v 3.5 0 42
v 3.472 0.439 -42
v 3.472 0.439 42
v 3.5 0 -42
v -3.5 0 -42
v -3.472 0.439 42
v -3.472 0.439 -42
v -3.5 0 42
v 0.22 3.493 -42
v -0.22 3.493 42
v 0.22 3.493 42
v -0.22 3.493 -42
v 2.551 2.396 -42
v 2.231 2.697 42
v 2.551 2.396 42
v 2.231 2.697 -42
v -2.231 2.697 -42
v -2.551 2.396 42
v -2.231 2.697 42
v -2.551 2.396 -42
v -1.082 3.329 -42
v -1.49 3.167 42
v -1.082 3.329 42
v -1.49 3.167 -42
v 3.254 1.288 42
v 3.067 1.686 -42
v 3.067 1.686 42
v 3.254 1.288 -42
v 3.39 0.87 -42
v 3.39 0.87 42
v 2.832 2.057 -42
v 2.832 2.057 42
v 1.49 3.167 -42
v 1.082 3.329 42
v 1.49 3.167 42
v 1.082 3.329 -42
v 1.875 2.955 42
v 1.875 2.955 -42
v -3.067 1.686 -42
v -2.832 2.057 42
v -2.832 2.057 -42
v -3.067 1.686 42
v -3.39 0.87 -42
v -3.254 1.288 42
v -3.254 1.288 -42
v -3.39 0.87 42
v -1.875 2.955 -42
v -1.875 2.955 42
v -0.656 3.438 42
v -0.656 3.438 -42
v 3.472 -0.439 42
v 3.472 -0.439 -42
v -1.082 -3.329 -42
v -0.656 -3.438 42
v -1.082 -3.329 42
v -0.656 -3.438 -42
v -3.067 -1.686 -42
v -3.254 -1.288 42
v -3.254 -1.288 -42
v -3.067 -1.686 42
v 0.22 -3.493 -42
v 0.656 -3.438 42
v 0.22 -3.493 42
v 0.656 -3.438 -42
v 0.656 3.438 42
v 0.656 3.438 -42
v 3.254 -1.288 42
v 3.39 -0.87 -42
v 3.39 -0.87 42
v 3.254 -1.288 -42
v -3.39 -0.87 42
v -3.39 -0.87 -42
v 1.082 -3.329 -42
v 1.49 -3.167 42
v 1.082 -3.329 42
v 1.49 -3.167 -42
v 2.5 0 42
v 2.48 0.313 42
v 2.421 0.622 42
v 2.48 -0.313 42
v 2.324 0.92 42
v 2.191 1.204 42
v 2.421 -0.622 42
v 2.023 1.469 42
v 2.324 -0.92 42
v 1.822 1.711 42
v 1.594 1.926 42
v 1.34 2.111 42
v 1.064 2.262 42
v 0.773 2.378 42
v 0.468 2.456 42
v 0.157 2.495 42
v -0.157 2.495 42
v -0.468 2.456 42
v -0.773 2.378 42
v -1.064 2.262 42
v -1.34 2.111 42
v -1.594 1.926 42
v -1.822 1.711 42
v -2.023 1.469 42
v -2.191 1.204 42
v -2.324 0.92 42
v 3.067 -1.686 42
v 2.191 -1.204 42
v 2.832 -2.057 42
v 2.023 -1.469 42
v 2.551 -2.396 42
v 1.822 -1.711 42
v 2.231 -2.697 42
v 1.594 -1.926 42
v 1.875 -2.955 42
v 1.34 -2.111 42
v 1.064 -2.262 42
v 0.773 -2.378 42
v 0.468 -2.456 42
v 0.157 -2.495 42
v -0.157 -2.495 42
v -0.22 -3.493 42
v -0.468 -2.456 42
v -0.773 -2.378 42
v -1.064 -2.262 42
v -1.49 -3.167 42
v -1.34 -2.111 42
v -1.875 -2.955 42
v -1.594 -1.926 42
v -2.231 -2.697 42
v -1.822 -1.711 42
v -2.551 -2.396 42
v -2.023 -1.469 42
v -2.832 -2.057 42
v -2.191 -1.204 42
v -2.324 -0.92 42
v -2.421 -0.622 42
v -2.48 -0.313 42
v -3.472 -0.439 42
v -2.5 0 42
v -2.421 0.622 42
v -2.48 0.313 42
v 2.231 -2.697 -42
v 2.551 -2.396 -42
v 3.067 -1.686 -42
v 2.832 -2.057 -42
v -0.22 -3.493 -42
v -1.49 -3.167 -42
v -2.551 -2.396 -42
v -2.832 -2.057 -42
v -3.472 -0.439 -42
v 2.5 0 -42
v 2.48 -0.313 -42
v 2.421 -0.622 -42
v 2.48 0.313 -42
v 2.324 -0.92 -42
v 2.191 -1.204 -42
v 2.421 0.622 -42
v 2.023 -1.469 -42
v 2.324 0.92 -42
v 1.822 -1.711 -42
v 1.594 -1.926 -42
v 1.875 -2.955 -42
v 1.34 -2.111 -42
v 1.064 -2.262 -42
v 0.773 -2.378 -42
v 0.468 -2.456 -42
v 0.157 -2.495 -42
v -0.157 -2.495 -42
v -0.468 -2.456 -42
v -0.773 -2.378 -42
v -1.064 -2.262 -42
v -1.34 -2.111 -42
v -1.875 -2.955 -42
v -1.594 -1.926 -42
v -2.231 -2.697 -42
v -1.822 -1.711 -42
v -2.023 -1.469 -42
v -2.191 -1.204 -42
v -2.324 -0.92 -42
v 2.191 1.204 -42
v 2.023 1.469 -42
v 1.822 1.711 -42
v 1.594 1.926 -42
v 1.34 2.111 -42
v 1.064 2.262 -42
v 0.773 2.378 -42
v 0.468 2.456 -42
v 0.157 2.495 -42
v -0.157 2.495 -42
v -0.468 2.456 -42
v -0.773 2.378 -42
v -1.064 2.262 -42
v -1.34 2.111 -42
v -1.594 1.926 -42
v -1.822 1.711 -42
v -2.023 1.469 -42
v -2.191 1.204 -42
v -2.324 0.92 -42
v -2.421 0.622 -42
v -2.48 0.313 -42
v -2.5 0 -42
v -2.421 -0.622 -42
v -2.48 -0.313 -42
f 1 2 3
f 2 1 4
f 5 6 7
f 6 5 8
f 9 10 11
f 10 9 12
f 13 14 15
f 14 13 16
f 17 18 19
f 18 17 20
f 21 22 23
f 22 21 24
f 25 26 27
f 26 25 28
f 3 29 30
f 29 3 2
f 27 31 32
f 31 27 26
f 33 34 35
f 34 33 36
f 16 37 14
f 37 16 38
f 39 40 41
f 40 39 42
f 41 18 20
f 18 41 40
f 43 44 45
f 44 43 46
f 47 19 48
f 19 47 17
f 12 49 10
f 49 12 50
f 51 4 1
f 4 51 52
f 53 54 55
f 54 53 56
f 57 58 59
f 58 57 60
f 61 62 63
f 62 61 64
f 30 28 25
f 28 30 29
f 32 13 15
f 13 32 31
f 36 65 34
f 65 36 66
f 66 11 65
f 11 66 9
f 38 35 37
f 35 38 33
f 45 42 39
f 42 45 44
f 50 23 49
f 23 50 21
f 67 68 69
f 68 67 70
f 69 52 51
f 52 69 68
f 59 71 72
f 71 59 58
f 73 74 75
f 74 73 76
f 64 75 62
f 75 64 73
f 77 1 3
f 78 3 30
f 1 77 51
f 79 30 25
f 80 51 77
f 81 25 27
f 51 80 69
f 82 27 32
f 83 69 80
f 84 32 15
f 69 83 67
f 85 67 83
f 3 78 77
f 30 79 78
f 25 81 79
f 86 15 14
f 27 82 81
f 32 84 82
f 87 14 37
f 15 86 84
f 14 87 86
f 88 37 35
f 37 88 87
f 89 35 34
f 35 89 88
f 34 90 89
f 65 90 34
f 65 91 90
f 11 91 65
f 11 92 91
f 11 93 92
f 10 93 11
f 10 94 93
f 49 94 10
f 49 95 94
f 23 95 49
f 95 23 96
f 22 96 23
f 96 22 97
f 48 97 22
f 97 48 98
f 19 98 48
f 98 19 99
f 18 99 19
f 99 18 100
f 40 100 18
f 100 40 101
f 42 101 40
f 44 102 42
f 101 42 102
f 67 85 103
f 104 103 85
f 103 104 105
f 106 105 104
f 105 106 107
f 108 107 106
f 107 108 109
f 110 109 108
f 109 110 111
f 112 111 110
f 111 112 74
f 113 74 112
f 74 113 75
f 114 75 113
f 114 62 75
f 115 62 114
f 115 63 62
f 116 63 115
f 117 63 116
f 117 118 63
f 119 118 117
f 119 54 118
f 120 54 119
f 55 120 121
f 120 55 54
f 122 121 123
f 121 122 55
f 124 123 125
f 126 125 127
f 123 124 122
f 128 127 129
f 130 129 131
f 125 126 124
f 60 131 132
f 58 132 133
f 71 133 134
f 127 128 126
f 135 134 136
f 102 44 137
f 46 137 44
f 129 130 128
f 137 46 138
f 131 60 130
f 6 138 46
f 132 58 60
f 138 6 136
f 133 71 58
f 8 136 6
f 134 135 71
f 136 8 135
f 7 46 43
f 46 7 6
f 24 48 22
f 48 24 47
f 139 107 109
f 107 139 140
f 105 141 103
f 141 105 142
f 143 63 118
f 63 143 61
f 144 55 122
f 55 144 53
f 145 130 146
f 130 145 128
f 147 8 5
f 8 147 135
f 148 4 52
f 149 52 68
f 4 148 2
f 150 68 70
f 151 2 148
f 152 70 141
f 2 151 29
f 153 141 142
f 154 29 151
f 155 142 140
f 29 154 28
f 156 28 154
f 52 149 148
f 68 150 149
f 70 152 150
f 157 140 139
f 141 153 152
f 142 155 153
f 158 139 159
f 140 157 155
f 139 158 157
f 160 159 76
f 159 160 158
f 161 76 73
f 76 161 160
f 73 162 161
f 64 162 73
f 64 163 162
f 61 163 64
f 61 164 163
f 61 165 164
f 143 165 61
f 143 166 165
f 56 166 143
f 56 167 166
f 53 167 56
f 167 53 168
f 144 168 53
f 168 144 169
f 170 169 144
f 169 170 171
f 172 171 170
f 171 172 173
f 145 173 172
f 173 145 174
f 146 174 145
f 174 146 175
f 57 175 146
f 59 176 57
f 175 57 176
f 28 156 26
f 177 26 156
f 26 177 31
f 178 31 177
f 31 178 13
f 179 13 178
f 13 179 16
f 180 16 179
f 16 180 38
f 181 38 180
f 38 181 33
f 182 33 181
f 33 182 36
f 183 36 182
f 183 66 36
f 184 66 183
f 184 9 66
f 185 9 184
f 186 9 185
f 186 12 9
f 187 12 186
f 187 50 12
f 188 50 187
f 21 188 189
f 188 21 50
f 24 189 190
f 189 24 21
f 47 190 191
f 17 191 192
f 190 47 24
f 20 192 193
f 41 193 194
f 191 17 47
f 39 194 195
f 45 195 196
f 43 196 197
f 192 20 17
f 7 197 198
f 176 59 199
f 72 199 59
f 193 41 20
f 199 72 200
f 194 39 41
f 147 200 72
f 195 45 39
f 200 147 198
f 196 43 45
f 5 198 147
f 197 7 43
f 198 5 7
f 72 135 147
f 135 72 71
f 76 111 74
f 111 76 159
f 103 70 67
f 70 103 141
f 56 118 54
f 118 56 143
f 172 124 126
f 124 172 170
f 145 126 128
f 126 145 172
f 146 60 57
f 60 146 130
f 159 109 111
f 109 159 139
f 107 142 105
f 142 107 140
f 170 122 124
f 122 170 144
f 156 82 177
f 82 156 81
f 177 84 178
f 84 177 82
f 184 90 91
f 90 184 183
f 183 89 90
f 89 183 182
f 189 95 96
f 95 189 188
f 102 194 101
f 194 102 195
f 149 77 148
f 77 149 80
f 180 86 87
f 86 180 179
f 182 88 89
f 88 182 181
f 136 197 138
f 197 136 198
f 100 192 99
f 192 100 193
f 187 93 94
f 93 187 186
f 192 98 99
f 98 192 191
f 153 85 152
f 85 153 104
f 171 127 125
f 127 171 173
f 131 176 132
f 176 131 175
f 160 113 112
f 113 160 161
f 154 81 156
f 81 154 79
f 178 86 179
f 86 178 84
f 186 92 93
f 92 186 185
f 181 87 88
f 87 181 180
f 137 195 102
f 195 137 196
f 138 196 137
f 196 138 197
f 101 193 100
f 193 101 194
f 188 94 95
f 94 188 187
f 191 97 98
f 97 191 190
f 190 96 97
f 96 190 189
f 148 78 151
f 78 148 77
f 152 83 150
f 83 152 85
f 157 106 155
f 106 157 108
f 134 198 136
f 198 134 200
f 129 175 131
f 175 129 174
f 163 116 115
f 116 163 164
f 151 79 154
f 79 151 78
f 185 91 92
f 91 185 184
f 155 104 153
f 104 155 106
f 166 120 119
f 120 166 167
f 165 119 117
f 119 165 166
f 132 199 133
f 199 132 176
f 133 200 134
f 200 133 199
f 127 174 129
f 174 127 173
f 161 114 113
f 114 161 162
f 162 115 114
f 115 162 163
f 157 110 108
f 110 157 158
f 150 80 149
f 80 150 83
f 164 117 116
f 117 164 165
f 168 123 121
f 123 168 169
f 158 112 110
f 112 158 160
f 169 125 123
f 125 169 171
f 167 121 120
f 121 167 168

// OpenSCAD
$fn = 50;


difference() {
	union() {
		translate(v = [0, 0, -42.0000000000]) {
			cylinder(h = 84, r = 3.5000000000);
		}
	}
	union() {
		translate(v = [0, 0, -100.0000000000]) {
			cylinder(h = 200, r = 2.5000000000);
		}
	}
}
